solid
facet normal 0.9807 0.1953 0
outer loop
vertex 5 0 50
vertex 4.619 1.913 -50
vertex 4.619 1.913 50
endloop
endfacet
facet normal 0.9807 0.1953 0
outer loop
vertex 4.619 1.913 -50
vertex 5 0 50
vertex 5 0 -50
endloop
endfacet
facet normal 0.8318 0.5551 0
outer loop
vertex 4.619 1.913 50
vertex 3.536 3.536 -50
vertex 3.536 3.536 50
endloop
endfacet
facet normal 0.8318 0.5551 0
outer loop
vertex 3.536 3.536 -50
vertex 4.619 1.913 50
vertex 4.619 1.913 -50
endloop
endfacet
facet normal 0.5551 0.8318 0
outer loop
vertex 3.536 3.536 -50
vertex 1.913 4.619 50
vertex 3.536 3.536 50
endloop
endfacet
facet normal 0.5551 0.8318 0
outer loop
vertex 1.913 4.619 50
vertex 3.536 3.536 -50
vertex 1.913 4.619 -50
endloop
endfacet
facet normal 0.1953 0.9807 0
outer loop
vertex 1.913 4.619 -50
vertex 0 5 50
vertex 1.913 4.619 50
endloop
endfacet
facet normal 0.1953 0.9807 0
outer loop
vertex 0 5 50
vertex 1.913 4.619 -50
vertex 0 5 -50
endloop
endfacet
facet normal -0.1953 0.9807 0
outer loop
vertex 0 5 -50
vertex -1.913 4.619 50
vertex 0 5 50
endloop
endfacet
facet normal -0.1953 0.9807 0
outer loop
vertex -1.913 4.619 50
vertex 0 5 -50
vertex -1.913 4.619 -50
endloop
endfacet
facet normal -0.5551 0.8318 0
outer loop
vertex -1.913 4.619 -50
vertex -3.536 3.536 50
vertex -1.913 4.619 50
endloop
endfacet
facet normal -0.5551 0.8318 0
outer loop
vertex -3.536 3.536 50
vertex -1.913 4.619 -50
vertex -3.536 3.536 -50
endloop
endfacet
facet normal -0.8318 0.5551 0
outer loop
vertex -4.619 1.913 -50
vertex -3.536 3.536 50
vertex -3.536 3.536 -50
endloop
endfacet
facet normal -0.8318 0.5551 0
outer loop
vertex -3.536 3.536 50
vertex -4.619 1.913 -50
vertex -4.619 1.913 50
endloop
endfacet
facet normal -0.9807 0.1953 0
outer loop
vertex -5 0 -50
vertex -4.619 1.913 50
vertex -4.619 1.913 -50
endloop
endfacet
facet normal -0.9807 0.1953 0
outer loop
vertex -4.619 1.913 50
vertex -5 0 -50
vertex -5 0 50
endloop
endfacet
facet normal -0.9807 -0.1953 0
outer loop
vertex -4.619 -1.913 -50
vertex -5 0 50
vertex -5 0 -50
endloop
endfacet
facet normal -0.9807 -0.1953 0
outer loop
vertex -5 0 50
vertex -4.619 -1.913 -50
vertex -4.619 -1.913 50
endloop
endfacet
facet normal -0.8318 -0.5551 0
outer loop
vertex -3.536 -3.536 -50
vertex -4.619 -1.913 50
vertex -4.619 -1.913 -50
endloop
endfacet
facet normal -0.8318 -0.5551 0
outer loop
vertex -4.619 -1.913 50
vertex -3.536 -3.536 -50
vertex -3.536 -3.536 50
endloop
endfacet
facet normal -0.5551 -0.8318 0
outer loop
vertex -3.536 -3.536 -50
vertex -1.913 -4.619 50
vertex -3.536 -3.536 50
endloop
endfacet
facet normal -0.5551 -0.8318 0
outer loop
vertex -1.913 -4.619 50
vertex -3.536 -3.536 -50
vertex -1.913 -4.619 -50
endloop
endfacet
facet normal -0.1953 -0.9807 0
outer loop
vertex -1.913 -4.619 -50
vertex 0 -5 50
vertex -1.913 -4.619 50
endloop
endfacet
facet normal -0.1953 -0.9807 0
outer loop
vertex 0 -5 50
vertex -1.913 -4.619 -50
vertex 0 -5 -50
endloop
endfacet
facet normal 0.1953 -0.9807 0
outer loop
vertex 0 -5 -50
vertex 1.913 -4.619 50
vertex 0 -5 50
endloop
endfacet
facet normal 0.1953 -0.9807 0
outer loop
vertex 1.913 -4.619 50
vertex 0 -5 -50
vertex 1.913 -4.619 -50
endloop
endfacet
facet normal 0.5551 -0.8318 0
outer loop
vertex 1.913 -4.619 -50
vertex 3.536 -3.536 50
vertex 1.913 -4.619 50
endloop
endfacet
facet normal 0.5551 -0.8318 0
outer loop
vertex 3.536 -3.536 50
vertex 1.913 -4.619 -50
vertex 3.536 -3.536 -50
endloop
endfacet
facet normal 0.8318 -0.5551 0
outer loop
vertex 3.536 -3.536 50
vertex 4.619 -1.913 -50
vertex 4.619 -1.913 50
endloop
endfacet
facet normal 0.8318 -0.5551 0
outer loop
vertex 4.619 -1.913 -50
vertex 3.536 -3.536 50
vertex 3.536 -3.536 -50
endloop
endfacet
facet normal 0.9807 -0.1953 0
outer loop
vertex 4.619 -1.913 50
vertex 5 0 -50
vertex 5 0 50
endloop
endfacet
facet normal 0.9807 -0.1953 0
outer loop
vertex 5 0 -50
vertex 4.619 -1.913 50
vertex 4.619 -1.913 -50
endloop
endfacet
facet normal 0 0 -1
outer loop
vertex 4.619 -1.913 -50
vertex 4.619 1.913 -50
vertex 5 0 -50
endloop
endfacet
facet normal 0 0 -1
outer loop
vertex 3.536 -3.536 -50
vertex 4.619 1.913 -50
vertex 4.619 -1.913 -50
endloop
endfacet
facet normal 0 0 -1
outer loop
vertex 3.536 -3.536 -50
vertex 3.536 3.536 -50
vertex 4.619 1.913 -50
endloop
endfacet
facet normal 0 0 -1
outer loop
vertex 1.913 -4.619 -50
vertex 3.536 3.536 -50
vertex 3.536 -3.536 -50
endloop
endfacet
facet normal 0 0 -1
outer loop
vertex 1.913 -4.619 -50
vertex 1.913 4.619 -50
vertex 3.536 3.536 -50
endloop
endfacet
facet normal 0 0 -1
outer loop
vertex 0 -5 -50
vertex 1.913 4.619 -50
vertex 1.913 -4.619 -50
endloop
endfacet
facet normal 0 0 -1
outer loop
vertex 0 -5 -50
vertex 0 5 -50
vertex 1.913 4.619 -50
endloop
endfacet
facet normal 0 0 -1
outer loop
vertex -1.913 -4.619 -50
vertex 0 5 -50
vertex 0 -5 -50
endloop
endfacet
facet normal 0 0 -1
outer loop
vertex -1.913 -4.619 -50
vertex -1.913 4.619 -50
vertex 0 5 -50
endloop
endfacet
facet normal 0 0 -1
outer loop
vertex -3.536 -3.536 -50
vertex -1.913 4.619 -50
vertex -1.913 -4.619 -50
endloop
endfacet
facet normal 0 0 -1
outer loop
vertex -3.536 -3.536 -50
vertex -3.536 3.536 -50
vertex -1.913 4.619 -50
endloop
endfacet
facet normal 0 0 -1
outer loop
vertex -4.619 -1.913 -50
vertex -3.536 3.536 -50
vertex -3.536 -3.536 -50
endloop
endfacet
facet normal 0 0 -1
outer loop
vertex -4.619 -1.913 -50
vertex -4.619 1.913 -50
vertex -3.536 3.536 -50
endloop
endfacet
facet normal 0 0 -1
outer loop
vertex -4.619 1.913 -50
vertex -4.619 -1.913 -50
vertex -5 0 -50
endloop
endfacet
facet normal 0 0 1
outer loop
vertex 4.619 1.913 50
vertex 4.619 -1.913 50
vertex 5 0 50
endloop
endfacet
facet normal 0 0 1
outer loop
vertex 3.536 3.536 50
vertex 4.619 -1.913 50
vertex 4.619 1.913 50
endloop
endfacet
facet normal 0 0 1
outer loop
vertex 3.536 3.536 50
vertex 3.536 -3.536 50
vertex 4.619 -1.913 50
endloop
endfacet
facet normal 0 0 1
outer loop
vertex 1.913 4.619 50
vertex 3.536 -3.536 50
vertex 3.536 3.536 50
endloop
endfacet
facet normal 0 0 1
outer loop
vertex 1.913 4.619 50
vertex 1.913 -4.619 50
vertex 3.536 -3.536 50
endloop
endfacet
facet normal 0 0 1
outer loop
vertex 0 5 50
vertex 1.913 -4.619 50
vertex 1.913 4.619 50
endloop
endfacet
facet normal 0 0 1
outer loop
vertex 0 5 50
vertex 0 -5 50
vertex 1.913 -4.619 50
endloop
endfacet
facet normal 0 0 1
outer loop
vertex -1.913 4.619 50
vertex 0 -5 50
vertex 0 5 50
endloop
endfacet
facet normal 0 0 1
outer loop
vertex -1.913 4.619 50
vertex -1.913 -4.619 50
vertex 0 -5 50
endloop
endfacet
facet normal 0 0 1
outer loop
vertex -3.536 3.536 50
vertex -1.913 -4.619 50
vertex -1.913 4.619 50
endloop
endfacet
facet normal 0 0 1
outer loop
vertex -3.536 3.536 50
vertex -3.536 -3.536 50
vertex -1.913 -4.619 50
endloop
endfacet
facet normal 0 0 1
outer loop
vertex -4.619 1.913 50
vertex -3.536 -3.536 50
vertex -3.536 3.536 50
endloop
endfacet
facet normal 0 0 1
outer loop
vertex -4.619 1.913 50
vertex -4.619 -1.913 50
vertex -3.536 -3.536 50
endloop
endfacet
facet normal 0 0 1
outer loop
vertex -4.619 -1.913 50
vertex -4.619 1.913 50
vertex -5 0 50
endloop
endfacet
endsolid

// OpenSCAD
// Parameters for the central shaft
shaft_length = 100; // Length of the shaft
shaft_diameter = 10; // Diameter of the shaft

// Central Shaft
module central_shaft() {
    cylinder(h = shaft_length, d = shaft_diameter, center = true);
}

// Render the central shaft
translate([0, 0, 0]) {
    central_shaft();
}
